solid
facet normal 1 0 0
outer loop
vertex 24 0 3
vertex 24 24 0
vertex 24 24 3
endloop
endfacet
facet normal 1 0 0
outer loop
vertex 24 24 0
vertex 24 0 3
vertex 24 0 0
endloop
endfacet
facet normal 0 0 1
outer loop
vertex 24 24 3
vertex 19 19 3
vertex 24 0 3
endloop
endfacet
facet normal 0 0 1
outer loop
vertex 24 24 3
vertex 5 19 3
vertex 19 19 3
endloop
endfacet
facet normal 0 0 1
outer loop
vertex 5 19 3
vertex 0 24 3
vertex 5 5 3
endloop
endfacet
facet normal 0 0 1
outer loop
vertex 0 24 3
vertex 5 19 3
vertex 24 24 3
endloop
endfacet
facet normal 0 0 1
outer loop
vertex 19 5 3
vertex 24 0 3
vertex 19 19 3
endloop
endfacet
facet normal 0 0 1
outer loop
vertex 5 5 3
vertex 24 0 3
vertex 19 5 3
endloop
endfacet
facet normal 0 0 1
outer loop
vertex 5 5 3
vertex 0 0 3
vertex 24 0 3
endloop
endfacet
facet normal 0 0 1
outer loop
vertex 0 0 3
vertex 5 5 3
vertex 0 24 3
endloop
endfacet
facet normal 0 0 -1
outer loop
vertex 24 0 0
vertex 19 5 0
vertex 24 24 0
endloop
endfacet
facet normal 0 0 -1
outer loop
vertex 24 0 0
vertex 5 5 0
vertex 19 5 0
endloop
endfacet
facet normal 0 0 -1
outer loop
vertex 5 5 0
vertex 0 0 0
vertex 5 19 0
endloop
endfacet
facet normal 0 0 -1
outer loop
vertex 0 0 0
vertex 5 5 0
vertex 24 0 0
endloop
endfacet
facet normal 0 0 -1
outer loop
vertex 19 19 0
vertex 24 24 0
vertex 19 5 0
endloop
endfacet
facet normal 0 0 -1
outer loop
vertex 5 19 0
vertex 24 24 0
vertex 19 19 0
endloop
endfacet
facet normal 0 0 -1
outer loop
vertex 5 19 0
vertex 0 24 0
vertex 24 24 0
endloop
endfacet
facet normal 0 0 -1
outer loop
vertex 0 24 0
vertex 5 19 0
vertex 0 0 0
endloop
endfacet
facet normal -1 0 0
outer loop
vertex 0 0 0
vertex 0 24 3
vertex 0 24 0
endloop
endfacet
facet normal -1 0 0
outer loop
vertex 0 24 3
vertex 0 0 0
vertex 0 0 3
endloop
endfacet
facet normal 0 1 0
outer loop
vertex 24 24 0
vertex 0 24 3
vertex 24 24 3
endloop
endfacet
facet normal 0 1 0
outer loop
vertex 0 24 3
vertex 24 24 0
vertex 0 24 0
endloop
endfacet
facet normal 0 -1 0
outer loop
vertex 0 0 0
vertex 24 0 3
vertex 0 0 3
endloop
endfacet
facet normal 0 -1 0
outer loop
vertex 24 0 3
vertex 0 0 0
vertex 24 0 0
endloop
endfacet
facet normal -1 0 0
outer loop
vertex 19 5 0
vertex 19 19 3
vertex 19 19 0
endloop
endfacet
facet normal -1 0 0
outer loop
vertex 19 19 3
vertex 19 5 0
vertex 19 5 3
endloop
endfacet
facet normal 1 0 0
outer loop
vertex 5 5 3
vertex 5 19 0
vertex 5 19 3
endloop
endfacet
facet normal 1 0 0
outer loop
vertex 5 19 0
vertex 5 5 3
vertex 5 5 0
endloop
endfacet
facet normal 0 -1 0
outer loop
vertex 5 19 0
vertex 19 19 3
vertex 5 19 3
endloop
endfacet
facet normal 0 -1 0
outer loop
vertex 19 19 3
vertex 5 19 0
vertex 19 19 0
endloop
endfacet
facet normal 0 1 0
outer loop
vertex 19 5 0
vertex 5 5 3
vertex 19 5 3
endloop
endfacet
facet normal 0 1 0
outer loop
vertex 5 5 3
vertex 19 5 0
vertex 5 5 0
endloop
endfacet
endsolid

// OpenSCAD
width = 5;
difference(){
    cube([14+width*2,14+width*2,3]);
    translate([width, width, 0]) cube([14,14,3]);
}
